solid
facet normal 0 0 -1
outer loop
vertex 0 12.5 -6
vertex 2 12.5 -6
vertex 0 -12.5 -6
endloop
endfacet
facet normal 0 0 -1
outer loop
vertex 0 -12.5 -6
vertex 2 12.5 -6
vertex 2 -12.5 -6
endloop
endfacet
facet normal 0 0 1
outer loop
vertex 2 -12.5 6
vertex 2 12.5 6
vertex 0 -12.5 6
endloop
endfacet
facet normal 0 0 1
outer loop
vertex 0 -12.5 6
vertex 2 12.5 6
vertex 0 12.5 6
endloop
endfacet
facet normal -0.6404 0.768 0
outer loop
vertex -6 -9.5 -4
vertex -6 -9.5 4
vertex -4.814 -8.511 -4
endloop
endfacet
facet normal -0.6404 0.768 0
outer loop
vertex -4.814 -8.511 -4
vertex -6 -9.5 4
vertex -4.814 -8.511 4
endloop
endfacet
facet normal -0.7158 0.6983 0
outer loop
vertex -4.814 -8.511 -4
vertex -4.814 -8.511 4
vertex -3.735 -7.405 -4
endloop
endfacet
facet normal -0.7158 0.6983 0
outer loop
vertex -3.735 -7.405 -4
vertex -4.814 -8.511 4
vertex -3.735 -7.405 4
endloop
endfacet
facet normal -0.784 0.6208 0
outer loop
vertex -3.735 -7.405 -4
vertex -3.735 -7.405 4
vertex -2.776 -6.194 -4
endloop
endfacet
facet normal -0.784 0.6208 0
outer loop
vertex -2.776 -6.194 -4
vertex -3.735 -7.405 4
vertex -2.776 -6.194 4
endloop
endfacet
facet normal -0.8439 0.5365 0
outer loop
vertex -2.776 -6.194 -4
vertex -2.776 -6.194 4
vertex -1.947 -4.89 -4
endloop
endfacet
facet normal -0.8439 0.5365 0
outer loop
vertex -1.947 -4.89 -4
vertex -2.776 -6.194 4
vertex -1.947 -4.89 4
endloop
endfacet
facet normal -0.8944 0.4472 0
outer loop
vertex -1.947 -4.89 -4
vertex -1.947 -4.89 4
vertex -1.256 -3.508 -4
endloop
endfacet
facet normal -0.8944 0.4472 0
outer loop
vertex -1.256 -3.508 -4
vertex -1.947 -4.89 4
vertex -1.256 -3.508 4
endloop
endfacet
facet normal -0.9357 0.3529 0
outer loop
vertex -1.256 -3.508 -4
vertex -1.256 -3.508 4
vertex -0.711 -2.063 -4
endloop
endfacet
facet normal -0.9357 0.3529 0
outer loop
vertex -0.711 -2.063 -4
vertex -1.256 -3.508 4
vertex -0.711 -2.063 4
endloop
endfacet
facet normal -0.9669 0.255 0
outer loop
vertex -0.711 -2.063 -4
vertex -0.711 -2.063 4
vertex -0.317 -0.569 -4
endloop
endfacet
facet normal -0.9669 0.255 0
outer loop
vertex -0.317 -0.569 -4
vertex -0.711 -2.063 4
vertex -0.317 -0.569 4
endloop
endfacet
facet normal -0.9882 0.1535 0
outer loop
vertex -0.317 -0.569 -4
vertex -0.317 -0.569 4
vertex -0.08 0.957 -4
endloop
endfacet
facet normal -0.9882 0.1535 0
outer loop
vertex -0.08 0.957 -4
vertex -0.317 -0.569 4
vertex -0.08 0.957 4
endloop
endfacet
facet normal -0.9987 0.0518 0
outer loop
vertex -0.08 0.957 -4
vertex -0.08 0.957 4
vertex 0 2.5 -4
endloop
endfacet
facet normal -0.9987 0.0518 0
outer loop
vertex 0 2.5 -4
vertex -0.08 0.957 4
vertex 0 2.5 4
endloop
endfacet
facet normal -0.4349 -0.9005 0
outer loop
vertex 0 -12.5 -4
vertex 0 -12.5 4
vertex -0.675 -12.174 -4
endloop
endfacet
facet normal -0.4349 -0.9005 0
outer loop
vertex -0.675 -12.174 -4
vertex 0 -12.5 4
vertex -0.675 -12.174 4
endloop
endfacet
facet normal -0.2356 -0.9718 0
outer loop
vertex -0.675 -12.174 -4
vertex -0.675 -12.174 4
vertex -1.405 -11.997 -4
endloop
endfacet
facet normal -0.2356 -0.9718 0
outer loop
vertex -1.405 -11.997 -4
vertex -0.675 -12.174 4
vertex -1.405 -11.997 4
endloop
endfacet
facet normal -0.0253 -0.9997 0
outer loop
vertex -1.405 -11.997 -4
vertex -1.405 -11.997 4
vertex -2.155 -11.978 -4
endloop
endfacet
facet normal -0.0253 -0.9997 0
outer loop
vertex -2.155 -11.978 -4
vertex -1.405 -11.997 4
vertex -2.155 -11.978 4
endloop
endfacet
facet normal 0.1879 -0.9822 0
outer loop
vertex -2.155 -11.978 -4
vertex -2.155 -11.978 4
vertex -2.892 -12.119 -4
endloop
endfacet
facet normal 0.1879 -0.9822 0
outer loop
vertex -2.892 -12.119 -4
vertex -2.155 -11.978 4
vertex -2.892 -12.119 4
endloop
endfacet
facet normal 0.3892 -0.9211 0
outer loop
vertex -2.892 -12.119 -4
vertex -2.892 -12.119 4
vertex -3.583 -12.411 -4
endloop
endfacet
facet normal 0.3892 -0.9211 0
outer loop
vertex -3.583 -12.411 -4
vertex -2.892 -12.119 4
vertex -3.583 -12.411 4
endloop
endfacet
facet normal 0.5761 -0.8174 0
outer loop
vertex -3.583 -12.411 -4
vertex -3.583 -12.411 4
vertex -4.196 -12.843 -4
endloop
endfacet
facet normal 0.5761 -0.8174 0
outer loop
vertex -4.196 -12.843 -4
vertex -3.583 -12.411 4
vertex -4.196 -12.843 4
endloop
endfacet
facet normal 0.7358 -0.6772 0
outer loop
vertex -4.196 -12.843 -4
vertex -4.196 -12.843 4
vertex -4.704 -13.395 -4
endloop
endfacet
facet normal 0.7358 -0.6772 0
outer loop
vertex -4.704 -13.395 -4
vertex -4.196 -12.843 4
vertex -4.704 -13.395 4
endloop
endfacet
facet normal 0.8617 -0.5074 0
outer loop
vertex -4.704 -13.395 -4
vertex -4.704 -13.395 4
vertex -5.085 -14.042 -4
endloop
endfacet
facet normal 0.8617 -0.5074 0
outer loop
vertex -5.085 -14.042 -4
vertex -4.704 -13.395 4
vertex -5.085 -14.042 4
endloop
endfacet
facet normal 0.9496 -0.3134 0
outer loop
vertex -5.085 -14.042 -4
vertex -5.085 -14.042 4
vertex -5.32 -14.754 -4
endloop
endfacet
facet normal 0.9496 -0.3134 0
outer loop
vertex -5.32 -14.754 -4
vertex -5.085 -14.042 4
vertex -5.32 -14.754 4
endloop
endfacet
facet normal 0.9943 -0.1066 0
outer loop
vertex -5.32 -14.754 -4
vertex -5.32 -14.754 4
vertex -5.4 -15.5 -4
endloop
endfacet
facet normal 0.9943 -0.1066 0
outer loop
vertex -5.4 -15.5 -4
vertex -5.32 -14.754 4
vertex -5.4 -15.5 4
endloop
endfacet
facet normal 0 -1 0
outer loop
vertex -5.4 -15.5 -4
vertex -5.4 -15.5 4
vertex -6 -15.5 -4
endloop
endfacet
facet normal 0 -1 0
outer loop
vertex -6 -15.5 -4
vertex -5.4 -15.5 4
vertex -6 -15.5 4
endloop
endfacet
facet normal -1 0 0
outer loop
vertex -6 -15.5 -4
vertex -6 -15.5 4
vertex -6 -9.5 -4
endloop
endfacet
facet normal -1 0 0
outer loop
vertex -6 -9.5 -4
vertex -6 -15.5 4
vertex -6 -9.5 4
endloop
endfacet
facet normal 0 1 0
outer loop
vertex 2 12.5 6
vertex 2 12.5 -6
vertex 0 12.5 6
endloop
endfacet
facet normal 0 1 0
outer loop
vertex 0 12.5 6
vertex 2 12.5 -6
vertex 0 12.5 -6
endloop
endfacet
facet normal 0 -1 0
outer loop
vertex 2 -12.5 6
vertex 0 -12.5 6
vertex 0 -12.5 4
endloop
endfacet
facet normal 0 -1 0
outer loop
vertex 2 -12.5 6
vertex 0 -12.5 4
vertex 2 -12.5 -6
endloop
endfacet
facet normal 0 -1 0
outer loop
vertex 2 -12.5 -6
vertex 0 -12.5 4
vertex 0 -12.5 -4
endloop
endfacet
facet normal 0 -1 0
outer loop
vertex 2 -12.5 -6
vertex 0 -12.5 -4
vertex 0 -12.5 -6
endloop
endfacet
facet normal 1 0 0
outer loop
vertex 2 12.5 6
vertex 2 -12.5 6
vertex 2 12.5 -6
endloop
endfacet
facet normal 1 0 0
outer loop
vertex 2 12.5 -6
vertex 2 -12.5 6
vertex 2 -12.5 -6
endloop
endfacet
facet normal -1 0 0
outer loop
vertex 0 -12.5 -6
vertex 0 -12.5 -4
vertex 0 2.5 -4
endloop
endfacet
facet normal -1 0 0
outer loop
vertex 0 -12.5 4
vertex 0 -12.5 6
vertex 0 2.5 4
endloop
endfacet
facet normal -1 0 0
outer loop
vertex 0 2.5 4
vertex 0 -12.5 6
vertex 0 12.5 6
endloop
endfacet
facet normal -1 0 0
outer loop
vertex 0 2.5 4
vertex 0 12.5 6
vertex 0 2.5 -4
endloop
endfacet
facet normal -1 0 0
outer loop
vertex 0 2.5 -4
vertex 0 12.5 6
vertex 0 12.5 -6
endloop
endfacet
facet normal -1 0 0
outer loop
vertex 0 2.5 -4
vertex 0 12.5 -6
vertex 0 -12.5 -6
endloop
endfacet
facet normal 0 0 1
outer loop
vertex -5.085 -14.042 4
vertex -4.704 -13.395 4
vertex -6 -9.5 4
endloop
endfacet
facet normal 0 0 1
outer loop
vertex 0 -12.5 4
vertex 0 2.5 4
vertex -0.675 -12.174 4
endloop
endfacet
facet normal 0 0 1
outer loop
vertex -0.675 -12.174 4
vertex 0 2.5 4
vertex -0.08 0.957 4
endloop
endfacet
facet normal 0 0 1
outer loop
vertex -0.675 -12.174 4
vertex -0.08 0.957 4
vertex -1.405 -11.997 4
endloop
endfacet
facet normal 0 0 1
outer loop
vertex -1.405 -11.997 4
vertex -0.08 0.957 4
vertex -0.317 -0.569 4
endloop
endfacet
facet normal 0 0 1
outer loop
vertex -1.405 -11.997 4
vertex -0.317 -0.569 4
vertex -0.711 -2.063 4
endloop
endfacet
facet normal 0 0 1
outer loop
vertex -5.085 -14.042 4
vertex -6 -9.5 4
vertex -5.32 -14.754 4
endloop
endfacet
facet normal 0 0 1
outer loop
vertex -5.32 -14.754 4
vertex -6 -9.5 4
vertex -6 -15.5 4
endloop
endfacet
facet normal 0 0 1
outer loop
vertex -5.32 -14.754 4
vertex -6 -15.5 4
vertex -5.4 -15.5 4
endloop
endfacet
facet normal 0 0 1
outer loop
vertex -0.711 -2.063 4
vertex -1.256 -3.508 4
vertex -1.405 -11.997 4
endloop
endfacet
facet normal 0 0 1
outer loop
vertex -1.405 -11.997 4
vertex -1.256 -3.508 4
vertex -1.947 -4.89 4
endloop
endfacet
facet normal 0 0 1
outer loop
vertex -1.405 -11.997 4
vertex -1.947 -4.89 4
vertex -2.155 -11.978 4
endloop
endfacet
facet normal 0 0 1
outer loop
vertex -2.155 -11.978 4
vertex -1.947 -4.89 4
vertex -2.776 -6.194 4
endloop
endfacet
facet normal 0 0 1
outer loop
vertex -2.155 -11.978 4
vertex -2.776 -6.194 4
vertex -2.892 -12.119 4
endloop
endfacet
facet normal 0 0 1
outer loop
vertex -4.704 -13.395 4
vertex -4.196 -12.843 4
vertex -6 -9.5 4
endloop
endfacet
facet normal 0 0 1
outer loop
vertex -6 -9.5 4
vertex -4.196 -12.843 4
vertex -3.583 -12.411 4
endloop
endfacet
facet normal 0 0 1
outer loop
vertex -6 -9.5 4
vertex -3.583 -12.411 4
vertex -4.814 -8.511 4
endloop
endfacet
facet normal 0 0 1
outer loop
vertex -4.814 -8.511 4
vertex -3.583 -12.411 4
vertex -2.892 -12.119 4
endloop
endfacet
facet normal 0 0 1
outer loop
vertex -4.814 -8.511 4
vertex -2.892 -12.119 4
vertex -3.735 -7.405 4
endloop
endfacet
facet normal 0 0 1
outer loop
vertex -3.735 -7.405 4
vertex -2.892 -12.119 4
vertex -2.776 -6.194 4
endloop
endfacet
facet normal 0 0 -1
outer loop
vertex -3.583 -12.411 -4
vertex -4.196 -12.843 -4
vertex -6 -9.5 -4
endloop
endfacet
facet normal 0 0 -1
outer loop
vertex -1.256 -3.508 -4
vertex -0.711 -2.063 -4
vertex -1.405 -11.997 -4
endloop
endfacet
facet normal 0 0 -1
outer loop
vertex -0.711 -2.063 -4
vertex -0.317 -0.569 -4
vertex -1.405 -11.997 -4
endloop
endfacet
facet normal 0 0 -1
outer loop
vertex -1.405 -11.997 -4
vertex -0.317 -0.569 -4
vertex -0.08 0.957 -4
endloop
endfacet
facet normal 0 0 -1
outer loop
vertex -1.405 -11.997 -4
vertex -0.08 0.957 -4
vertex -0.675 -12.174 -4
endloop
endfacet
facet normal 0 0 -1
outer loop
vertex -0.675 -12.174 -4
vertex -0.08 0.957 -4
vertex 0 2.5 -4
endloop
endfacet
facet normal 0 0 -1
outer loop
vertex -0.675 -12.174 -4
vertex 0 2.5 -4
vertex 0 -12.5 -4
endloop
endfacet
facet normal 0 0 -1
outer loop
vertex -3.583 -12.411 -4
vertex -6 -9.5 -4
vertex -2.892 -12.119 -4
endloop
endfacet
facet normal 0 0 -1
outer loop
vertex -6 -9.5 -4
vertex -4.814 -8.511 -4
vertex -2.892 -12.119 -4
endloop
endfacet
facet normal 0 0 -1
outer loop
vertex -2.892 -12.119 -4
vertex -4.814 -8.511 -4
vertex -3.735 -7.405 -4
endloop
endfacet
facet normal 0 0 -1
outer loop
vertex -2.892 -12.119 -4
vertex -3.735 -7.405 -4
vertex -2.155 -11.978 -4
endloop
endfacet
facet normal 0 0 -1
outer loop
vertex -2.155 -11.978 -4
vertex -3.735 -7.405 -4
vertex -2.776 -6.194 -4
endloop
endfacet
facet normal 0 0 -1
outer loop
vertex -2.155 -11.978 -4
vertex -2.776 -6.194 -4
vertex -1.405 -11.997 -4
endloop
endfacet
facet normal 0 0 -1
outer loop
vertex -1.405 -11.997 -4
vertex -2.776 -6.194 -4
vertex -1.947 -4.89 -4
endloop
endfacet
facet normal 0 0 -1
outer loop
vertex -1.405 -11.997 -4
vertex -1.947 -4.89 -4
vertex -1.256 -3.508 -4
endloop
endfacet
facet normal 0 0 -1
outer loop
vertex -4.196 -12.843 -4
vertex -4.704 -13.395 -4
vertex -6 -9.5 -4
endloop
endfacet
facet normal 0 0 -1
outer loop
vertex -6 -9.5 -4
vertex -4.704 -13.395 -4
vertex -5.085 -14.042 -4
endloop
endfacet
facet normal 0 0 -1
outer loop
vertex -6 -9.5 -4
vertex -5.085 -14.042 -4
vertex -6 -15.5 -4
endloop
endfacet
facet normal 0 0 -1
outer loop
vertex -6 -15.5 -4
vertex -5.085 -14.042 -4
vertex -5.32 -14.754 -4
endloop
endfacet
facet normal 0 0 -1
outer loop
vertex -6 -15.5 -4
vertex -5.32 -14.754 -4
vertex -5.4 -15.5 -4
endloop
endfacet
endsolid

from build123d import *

# Parameters (mm, degrees)
SKETCH1_W           = 12
SKETCH1_H           = 25
BOSS_EXTRUDE1_DEPTH = 2
BOSS_EXTRUDE2_DEPTH = 12
CUT_EXTRUDE1_REACH  = 20.446
SKETCH3_W           = 23.047029748
SKETCH3_H           = 41.13404119
SKETCH3_W_2         = 8
SKETCH3_H_2         = 35.39542334


with BuildPart() as part:
    # Sketch1 → Boss-Extrude1 (new body)
    with BuildSketch(Plane(origin=(0, 0, 0), x_dir=(0, 0, -1), z_dir=(1, 0, 0))):
        Rectangle(SKETCH1_W, SKETCH1_H)
    extrude(amount=BOSS_EXTRUDE1_DEPTH)

    # Sketch2 → Boss-Extrude2 (add)
    with BuildSketch(Plane.XY.offset(6)):
        with BuildLine():
            Line((-6, -9.5), (-6, -15.5))
            Line((-6, -15.5), (-5.4, -15.5))
            ThreePointArc((-5.4, -15.5), (-3.582605023, -12.411310958), (0, -12.5))
            Line((0, -12.5), (0, 2.5))
            ThreePointArc((0, 2.5), (-1.583592135, -4.208203932), (-6, -9.5))
        make_face()
    extrude(amount=-BOSS_EXTRUDE2_DEPTH)

    # Cut-Extrude1: up to this face of the body (flat: up to its plane)
    cut_extrude1_end = Plane(part.part.faces().sort_by_distance((0, 7.5, 0))[0])
    # Sketch3 → Cut-Extrude1 (cut, up to the picked face)
    with BuildSketch(Plane.ZY.offset(6), mode=Mode.PRIVATE) as cut_extrude1_sk1:
        Rectangle(SKETCH3_W, SKETCH3_H)
        Rectangle(SKETCH3_W_2, SKETCH3_H_2, mode=Mode.SUBTRACT)
    cut_extrude1_tool1 = split(extrude(cut_extrude1_sk1.sketch, amount=-CUT_EXTRUDE1_REACH, mode=Mode.PRIVATE), bisect_by=cut_extrude1_end, keep=Keep.BOTH, mode=Mode.PRIVATE)
    add(cut_extrude1_tool1.solids().sort_by(Axis((-6, 20.095515, 0), (1, 0, 0)))[0], mode=Mode.SUBTRACT)


solid = part.part
